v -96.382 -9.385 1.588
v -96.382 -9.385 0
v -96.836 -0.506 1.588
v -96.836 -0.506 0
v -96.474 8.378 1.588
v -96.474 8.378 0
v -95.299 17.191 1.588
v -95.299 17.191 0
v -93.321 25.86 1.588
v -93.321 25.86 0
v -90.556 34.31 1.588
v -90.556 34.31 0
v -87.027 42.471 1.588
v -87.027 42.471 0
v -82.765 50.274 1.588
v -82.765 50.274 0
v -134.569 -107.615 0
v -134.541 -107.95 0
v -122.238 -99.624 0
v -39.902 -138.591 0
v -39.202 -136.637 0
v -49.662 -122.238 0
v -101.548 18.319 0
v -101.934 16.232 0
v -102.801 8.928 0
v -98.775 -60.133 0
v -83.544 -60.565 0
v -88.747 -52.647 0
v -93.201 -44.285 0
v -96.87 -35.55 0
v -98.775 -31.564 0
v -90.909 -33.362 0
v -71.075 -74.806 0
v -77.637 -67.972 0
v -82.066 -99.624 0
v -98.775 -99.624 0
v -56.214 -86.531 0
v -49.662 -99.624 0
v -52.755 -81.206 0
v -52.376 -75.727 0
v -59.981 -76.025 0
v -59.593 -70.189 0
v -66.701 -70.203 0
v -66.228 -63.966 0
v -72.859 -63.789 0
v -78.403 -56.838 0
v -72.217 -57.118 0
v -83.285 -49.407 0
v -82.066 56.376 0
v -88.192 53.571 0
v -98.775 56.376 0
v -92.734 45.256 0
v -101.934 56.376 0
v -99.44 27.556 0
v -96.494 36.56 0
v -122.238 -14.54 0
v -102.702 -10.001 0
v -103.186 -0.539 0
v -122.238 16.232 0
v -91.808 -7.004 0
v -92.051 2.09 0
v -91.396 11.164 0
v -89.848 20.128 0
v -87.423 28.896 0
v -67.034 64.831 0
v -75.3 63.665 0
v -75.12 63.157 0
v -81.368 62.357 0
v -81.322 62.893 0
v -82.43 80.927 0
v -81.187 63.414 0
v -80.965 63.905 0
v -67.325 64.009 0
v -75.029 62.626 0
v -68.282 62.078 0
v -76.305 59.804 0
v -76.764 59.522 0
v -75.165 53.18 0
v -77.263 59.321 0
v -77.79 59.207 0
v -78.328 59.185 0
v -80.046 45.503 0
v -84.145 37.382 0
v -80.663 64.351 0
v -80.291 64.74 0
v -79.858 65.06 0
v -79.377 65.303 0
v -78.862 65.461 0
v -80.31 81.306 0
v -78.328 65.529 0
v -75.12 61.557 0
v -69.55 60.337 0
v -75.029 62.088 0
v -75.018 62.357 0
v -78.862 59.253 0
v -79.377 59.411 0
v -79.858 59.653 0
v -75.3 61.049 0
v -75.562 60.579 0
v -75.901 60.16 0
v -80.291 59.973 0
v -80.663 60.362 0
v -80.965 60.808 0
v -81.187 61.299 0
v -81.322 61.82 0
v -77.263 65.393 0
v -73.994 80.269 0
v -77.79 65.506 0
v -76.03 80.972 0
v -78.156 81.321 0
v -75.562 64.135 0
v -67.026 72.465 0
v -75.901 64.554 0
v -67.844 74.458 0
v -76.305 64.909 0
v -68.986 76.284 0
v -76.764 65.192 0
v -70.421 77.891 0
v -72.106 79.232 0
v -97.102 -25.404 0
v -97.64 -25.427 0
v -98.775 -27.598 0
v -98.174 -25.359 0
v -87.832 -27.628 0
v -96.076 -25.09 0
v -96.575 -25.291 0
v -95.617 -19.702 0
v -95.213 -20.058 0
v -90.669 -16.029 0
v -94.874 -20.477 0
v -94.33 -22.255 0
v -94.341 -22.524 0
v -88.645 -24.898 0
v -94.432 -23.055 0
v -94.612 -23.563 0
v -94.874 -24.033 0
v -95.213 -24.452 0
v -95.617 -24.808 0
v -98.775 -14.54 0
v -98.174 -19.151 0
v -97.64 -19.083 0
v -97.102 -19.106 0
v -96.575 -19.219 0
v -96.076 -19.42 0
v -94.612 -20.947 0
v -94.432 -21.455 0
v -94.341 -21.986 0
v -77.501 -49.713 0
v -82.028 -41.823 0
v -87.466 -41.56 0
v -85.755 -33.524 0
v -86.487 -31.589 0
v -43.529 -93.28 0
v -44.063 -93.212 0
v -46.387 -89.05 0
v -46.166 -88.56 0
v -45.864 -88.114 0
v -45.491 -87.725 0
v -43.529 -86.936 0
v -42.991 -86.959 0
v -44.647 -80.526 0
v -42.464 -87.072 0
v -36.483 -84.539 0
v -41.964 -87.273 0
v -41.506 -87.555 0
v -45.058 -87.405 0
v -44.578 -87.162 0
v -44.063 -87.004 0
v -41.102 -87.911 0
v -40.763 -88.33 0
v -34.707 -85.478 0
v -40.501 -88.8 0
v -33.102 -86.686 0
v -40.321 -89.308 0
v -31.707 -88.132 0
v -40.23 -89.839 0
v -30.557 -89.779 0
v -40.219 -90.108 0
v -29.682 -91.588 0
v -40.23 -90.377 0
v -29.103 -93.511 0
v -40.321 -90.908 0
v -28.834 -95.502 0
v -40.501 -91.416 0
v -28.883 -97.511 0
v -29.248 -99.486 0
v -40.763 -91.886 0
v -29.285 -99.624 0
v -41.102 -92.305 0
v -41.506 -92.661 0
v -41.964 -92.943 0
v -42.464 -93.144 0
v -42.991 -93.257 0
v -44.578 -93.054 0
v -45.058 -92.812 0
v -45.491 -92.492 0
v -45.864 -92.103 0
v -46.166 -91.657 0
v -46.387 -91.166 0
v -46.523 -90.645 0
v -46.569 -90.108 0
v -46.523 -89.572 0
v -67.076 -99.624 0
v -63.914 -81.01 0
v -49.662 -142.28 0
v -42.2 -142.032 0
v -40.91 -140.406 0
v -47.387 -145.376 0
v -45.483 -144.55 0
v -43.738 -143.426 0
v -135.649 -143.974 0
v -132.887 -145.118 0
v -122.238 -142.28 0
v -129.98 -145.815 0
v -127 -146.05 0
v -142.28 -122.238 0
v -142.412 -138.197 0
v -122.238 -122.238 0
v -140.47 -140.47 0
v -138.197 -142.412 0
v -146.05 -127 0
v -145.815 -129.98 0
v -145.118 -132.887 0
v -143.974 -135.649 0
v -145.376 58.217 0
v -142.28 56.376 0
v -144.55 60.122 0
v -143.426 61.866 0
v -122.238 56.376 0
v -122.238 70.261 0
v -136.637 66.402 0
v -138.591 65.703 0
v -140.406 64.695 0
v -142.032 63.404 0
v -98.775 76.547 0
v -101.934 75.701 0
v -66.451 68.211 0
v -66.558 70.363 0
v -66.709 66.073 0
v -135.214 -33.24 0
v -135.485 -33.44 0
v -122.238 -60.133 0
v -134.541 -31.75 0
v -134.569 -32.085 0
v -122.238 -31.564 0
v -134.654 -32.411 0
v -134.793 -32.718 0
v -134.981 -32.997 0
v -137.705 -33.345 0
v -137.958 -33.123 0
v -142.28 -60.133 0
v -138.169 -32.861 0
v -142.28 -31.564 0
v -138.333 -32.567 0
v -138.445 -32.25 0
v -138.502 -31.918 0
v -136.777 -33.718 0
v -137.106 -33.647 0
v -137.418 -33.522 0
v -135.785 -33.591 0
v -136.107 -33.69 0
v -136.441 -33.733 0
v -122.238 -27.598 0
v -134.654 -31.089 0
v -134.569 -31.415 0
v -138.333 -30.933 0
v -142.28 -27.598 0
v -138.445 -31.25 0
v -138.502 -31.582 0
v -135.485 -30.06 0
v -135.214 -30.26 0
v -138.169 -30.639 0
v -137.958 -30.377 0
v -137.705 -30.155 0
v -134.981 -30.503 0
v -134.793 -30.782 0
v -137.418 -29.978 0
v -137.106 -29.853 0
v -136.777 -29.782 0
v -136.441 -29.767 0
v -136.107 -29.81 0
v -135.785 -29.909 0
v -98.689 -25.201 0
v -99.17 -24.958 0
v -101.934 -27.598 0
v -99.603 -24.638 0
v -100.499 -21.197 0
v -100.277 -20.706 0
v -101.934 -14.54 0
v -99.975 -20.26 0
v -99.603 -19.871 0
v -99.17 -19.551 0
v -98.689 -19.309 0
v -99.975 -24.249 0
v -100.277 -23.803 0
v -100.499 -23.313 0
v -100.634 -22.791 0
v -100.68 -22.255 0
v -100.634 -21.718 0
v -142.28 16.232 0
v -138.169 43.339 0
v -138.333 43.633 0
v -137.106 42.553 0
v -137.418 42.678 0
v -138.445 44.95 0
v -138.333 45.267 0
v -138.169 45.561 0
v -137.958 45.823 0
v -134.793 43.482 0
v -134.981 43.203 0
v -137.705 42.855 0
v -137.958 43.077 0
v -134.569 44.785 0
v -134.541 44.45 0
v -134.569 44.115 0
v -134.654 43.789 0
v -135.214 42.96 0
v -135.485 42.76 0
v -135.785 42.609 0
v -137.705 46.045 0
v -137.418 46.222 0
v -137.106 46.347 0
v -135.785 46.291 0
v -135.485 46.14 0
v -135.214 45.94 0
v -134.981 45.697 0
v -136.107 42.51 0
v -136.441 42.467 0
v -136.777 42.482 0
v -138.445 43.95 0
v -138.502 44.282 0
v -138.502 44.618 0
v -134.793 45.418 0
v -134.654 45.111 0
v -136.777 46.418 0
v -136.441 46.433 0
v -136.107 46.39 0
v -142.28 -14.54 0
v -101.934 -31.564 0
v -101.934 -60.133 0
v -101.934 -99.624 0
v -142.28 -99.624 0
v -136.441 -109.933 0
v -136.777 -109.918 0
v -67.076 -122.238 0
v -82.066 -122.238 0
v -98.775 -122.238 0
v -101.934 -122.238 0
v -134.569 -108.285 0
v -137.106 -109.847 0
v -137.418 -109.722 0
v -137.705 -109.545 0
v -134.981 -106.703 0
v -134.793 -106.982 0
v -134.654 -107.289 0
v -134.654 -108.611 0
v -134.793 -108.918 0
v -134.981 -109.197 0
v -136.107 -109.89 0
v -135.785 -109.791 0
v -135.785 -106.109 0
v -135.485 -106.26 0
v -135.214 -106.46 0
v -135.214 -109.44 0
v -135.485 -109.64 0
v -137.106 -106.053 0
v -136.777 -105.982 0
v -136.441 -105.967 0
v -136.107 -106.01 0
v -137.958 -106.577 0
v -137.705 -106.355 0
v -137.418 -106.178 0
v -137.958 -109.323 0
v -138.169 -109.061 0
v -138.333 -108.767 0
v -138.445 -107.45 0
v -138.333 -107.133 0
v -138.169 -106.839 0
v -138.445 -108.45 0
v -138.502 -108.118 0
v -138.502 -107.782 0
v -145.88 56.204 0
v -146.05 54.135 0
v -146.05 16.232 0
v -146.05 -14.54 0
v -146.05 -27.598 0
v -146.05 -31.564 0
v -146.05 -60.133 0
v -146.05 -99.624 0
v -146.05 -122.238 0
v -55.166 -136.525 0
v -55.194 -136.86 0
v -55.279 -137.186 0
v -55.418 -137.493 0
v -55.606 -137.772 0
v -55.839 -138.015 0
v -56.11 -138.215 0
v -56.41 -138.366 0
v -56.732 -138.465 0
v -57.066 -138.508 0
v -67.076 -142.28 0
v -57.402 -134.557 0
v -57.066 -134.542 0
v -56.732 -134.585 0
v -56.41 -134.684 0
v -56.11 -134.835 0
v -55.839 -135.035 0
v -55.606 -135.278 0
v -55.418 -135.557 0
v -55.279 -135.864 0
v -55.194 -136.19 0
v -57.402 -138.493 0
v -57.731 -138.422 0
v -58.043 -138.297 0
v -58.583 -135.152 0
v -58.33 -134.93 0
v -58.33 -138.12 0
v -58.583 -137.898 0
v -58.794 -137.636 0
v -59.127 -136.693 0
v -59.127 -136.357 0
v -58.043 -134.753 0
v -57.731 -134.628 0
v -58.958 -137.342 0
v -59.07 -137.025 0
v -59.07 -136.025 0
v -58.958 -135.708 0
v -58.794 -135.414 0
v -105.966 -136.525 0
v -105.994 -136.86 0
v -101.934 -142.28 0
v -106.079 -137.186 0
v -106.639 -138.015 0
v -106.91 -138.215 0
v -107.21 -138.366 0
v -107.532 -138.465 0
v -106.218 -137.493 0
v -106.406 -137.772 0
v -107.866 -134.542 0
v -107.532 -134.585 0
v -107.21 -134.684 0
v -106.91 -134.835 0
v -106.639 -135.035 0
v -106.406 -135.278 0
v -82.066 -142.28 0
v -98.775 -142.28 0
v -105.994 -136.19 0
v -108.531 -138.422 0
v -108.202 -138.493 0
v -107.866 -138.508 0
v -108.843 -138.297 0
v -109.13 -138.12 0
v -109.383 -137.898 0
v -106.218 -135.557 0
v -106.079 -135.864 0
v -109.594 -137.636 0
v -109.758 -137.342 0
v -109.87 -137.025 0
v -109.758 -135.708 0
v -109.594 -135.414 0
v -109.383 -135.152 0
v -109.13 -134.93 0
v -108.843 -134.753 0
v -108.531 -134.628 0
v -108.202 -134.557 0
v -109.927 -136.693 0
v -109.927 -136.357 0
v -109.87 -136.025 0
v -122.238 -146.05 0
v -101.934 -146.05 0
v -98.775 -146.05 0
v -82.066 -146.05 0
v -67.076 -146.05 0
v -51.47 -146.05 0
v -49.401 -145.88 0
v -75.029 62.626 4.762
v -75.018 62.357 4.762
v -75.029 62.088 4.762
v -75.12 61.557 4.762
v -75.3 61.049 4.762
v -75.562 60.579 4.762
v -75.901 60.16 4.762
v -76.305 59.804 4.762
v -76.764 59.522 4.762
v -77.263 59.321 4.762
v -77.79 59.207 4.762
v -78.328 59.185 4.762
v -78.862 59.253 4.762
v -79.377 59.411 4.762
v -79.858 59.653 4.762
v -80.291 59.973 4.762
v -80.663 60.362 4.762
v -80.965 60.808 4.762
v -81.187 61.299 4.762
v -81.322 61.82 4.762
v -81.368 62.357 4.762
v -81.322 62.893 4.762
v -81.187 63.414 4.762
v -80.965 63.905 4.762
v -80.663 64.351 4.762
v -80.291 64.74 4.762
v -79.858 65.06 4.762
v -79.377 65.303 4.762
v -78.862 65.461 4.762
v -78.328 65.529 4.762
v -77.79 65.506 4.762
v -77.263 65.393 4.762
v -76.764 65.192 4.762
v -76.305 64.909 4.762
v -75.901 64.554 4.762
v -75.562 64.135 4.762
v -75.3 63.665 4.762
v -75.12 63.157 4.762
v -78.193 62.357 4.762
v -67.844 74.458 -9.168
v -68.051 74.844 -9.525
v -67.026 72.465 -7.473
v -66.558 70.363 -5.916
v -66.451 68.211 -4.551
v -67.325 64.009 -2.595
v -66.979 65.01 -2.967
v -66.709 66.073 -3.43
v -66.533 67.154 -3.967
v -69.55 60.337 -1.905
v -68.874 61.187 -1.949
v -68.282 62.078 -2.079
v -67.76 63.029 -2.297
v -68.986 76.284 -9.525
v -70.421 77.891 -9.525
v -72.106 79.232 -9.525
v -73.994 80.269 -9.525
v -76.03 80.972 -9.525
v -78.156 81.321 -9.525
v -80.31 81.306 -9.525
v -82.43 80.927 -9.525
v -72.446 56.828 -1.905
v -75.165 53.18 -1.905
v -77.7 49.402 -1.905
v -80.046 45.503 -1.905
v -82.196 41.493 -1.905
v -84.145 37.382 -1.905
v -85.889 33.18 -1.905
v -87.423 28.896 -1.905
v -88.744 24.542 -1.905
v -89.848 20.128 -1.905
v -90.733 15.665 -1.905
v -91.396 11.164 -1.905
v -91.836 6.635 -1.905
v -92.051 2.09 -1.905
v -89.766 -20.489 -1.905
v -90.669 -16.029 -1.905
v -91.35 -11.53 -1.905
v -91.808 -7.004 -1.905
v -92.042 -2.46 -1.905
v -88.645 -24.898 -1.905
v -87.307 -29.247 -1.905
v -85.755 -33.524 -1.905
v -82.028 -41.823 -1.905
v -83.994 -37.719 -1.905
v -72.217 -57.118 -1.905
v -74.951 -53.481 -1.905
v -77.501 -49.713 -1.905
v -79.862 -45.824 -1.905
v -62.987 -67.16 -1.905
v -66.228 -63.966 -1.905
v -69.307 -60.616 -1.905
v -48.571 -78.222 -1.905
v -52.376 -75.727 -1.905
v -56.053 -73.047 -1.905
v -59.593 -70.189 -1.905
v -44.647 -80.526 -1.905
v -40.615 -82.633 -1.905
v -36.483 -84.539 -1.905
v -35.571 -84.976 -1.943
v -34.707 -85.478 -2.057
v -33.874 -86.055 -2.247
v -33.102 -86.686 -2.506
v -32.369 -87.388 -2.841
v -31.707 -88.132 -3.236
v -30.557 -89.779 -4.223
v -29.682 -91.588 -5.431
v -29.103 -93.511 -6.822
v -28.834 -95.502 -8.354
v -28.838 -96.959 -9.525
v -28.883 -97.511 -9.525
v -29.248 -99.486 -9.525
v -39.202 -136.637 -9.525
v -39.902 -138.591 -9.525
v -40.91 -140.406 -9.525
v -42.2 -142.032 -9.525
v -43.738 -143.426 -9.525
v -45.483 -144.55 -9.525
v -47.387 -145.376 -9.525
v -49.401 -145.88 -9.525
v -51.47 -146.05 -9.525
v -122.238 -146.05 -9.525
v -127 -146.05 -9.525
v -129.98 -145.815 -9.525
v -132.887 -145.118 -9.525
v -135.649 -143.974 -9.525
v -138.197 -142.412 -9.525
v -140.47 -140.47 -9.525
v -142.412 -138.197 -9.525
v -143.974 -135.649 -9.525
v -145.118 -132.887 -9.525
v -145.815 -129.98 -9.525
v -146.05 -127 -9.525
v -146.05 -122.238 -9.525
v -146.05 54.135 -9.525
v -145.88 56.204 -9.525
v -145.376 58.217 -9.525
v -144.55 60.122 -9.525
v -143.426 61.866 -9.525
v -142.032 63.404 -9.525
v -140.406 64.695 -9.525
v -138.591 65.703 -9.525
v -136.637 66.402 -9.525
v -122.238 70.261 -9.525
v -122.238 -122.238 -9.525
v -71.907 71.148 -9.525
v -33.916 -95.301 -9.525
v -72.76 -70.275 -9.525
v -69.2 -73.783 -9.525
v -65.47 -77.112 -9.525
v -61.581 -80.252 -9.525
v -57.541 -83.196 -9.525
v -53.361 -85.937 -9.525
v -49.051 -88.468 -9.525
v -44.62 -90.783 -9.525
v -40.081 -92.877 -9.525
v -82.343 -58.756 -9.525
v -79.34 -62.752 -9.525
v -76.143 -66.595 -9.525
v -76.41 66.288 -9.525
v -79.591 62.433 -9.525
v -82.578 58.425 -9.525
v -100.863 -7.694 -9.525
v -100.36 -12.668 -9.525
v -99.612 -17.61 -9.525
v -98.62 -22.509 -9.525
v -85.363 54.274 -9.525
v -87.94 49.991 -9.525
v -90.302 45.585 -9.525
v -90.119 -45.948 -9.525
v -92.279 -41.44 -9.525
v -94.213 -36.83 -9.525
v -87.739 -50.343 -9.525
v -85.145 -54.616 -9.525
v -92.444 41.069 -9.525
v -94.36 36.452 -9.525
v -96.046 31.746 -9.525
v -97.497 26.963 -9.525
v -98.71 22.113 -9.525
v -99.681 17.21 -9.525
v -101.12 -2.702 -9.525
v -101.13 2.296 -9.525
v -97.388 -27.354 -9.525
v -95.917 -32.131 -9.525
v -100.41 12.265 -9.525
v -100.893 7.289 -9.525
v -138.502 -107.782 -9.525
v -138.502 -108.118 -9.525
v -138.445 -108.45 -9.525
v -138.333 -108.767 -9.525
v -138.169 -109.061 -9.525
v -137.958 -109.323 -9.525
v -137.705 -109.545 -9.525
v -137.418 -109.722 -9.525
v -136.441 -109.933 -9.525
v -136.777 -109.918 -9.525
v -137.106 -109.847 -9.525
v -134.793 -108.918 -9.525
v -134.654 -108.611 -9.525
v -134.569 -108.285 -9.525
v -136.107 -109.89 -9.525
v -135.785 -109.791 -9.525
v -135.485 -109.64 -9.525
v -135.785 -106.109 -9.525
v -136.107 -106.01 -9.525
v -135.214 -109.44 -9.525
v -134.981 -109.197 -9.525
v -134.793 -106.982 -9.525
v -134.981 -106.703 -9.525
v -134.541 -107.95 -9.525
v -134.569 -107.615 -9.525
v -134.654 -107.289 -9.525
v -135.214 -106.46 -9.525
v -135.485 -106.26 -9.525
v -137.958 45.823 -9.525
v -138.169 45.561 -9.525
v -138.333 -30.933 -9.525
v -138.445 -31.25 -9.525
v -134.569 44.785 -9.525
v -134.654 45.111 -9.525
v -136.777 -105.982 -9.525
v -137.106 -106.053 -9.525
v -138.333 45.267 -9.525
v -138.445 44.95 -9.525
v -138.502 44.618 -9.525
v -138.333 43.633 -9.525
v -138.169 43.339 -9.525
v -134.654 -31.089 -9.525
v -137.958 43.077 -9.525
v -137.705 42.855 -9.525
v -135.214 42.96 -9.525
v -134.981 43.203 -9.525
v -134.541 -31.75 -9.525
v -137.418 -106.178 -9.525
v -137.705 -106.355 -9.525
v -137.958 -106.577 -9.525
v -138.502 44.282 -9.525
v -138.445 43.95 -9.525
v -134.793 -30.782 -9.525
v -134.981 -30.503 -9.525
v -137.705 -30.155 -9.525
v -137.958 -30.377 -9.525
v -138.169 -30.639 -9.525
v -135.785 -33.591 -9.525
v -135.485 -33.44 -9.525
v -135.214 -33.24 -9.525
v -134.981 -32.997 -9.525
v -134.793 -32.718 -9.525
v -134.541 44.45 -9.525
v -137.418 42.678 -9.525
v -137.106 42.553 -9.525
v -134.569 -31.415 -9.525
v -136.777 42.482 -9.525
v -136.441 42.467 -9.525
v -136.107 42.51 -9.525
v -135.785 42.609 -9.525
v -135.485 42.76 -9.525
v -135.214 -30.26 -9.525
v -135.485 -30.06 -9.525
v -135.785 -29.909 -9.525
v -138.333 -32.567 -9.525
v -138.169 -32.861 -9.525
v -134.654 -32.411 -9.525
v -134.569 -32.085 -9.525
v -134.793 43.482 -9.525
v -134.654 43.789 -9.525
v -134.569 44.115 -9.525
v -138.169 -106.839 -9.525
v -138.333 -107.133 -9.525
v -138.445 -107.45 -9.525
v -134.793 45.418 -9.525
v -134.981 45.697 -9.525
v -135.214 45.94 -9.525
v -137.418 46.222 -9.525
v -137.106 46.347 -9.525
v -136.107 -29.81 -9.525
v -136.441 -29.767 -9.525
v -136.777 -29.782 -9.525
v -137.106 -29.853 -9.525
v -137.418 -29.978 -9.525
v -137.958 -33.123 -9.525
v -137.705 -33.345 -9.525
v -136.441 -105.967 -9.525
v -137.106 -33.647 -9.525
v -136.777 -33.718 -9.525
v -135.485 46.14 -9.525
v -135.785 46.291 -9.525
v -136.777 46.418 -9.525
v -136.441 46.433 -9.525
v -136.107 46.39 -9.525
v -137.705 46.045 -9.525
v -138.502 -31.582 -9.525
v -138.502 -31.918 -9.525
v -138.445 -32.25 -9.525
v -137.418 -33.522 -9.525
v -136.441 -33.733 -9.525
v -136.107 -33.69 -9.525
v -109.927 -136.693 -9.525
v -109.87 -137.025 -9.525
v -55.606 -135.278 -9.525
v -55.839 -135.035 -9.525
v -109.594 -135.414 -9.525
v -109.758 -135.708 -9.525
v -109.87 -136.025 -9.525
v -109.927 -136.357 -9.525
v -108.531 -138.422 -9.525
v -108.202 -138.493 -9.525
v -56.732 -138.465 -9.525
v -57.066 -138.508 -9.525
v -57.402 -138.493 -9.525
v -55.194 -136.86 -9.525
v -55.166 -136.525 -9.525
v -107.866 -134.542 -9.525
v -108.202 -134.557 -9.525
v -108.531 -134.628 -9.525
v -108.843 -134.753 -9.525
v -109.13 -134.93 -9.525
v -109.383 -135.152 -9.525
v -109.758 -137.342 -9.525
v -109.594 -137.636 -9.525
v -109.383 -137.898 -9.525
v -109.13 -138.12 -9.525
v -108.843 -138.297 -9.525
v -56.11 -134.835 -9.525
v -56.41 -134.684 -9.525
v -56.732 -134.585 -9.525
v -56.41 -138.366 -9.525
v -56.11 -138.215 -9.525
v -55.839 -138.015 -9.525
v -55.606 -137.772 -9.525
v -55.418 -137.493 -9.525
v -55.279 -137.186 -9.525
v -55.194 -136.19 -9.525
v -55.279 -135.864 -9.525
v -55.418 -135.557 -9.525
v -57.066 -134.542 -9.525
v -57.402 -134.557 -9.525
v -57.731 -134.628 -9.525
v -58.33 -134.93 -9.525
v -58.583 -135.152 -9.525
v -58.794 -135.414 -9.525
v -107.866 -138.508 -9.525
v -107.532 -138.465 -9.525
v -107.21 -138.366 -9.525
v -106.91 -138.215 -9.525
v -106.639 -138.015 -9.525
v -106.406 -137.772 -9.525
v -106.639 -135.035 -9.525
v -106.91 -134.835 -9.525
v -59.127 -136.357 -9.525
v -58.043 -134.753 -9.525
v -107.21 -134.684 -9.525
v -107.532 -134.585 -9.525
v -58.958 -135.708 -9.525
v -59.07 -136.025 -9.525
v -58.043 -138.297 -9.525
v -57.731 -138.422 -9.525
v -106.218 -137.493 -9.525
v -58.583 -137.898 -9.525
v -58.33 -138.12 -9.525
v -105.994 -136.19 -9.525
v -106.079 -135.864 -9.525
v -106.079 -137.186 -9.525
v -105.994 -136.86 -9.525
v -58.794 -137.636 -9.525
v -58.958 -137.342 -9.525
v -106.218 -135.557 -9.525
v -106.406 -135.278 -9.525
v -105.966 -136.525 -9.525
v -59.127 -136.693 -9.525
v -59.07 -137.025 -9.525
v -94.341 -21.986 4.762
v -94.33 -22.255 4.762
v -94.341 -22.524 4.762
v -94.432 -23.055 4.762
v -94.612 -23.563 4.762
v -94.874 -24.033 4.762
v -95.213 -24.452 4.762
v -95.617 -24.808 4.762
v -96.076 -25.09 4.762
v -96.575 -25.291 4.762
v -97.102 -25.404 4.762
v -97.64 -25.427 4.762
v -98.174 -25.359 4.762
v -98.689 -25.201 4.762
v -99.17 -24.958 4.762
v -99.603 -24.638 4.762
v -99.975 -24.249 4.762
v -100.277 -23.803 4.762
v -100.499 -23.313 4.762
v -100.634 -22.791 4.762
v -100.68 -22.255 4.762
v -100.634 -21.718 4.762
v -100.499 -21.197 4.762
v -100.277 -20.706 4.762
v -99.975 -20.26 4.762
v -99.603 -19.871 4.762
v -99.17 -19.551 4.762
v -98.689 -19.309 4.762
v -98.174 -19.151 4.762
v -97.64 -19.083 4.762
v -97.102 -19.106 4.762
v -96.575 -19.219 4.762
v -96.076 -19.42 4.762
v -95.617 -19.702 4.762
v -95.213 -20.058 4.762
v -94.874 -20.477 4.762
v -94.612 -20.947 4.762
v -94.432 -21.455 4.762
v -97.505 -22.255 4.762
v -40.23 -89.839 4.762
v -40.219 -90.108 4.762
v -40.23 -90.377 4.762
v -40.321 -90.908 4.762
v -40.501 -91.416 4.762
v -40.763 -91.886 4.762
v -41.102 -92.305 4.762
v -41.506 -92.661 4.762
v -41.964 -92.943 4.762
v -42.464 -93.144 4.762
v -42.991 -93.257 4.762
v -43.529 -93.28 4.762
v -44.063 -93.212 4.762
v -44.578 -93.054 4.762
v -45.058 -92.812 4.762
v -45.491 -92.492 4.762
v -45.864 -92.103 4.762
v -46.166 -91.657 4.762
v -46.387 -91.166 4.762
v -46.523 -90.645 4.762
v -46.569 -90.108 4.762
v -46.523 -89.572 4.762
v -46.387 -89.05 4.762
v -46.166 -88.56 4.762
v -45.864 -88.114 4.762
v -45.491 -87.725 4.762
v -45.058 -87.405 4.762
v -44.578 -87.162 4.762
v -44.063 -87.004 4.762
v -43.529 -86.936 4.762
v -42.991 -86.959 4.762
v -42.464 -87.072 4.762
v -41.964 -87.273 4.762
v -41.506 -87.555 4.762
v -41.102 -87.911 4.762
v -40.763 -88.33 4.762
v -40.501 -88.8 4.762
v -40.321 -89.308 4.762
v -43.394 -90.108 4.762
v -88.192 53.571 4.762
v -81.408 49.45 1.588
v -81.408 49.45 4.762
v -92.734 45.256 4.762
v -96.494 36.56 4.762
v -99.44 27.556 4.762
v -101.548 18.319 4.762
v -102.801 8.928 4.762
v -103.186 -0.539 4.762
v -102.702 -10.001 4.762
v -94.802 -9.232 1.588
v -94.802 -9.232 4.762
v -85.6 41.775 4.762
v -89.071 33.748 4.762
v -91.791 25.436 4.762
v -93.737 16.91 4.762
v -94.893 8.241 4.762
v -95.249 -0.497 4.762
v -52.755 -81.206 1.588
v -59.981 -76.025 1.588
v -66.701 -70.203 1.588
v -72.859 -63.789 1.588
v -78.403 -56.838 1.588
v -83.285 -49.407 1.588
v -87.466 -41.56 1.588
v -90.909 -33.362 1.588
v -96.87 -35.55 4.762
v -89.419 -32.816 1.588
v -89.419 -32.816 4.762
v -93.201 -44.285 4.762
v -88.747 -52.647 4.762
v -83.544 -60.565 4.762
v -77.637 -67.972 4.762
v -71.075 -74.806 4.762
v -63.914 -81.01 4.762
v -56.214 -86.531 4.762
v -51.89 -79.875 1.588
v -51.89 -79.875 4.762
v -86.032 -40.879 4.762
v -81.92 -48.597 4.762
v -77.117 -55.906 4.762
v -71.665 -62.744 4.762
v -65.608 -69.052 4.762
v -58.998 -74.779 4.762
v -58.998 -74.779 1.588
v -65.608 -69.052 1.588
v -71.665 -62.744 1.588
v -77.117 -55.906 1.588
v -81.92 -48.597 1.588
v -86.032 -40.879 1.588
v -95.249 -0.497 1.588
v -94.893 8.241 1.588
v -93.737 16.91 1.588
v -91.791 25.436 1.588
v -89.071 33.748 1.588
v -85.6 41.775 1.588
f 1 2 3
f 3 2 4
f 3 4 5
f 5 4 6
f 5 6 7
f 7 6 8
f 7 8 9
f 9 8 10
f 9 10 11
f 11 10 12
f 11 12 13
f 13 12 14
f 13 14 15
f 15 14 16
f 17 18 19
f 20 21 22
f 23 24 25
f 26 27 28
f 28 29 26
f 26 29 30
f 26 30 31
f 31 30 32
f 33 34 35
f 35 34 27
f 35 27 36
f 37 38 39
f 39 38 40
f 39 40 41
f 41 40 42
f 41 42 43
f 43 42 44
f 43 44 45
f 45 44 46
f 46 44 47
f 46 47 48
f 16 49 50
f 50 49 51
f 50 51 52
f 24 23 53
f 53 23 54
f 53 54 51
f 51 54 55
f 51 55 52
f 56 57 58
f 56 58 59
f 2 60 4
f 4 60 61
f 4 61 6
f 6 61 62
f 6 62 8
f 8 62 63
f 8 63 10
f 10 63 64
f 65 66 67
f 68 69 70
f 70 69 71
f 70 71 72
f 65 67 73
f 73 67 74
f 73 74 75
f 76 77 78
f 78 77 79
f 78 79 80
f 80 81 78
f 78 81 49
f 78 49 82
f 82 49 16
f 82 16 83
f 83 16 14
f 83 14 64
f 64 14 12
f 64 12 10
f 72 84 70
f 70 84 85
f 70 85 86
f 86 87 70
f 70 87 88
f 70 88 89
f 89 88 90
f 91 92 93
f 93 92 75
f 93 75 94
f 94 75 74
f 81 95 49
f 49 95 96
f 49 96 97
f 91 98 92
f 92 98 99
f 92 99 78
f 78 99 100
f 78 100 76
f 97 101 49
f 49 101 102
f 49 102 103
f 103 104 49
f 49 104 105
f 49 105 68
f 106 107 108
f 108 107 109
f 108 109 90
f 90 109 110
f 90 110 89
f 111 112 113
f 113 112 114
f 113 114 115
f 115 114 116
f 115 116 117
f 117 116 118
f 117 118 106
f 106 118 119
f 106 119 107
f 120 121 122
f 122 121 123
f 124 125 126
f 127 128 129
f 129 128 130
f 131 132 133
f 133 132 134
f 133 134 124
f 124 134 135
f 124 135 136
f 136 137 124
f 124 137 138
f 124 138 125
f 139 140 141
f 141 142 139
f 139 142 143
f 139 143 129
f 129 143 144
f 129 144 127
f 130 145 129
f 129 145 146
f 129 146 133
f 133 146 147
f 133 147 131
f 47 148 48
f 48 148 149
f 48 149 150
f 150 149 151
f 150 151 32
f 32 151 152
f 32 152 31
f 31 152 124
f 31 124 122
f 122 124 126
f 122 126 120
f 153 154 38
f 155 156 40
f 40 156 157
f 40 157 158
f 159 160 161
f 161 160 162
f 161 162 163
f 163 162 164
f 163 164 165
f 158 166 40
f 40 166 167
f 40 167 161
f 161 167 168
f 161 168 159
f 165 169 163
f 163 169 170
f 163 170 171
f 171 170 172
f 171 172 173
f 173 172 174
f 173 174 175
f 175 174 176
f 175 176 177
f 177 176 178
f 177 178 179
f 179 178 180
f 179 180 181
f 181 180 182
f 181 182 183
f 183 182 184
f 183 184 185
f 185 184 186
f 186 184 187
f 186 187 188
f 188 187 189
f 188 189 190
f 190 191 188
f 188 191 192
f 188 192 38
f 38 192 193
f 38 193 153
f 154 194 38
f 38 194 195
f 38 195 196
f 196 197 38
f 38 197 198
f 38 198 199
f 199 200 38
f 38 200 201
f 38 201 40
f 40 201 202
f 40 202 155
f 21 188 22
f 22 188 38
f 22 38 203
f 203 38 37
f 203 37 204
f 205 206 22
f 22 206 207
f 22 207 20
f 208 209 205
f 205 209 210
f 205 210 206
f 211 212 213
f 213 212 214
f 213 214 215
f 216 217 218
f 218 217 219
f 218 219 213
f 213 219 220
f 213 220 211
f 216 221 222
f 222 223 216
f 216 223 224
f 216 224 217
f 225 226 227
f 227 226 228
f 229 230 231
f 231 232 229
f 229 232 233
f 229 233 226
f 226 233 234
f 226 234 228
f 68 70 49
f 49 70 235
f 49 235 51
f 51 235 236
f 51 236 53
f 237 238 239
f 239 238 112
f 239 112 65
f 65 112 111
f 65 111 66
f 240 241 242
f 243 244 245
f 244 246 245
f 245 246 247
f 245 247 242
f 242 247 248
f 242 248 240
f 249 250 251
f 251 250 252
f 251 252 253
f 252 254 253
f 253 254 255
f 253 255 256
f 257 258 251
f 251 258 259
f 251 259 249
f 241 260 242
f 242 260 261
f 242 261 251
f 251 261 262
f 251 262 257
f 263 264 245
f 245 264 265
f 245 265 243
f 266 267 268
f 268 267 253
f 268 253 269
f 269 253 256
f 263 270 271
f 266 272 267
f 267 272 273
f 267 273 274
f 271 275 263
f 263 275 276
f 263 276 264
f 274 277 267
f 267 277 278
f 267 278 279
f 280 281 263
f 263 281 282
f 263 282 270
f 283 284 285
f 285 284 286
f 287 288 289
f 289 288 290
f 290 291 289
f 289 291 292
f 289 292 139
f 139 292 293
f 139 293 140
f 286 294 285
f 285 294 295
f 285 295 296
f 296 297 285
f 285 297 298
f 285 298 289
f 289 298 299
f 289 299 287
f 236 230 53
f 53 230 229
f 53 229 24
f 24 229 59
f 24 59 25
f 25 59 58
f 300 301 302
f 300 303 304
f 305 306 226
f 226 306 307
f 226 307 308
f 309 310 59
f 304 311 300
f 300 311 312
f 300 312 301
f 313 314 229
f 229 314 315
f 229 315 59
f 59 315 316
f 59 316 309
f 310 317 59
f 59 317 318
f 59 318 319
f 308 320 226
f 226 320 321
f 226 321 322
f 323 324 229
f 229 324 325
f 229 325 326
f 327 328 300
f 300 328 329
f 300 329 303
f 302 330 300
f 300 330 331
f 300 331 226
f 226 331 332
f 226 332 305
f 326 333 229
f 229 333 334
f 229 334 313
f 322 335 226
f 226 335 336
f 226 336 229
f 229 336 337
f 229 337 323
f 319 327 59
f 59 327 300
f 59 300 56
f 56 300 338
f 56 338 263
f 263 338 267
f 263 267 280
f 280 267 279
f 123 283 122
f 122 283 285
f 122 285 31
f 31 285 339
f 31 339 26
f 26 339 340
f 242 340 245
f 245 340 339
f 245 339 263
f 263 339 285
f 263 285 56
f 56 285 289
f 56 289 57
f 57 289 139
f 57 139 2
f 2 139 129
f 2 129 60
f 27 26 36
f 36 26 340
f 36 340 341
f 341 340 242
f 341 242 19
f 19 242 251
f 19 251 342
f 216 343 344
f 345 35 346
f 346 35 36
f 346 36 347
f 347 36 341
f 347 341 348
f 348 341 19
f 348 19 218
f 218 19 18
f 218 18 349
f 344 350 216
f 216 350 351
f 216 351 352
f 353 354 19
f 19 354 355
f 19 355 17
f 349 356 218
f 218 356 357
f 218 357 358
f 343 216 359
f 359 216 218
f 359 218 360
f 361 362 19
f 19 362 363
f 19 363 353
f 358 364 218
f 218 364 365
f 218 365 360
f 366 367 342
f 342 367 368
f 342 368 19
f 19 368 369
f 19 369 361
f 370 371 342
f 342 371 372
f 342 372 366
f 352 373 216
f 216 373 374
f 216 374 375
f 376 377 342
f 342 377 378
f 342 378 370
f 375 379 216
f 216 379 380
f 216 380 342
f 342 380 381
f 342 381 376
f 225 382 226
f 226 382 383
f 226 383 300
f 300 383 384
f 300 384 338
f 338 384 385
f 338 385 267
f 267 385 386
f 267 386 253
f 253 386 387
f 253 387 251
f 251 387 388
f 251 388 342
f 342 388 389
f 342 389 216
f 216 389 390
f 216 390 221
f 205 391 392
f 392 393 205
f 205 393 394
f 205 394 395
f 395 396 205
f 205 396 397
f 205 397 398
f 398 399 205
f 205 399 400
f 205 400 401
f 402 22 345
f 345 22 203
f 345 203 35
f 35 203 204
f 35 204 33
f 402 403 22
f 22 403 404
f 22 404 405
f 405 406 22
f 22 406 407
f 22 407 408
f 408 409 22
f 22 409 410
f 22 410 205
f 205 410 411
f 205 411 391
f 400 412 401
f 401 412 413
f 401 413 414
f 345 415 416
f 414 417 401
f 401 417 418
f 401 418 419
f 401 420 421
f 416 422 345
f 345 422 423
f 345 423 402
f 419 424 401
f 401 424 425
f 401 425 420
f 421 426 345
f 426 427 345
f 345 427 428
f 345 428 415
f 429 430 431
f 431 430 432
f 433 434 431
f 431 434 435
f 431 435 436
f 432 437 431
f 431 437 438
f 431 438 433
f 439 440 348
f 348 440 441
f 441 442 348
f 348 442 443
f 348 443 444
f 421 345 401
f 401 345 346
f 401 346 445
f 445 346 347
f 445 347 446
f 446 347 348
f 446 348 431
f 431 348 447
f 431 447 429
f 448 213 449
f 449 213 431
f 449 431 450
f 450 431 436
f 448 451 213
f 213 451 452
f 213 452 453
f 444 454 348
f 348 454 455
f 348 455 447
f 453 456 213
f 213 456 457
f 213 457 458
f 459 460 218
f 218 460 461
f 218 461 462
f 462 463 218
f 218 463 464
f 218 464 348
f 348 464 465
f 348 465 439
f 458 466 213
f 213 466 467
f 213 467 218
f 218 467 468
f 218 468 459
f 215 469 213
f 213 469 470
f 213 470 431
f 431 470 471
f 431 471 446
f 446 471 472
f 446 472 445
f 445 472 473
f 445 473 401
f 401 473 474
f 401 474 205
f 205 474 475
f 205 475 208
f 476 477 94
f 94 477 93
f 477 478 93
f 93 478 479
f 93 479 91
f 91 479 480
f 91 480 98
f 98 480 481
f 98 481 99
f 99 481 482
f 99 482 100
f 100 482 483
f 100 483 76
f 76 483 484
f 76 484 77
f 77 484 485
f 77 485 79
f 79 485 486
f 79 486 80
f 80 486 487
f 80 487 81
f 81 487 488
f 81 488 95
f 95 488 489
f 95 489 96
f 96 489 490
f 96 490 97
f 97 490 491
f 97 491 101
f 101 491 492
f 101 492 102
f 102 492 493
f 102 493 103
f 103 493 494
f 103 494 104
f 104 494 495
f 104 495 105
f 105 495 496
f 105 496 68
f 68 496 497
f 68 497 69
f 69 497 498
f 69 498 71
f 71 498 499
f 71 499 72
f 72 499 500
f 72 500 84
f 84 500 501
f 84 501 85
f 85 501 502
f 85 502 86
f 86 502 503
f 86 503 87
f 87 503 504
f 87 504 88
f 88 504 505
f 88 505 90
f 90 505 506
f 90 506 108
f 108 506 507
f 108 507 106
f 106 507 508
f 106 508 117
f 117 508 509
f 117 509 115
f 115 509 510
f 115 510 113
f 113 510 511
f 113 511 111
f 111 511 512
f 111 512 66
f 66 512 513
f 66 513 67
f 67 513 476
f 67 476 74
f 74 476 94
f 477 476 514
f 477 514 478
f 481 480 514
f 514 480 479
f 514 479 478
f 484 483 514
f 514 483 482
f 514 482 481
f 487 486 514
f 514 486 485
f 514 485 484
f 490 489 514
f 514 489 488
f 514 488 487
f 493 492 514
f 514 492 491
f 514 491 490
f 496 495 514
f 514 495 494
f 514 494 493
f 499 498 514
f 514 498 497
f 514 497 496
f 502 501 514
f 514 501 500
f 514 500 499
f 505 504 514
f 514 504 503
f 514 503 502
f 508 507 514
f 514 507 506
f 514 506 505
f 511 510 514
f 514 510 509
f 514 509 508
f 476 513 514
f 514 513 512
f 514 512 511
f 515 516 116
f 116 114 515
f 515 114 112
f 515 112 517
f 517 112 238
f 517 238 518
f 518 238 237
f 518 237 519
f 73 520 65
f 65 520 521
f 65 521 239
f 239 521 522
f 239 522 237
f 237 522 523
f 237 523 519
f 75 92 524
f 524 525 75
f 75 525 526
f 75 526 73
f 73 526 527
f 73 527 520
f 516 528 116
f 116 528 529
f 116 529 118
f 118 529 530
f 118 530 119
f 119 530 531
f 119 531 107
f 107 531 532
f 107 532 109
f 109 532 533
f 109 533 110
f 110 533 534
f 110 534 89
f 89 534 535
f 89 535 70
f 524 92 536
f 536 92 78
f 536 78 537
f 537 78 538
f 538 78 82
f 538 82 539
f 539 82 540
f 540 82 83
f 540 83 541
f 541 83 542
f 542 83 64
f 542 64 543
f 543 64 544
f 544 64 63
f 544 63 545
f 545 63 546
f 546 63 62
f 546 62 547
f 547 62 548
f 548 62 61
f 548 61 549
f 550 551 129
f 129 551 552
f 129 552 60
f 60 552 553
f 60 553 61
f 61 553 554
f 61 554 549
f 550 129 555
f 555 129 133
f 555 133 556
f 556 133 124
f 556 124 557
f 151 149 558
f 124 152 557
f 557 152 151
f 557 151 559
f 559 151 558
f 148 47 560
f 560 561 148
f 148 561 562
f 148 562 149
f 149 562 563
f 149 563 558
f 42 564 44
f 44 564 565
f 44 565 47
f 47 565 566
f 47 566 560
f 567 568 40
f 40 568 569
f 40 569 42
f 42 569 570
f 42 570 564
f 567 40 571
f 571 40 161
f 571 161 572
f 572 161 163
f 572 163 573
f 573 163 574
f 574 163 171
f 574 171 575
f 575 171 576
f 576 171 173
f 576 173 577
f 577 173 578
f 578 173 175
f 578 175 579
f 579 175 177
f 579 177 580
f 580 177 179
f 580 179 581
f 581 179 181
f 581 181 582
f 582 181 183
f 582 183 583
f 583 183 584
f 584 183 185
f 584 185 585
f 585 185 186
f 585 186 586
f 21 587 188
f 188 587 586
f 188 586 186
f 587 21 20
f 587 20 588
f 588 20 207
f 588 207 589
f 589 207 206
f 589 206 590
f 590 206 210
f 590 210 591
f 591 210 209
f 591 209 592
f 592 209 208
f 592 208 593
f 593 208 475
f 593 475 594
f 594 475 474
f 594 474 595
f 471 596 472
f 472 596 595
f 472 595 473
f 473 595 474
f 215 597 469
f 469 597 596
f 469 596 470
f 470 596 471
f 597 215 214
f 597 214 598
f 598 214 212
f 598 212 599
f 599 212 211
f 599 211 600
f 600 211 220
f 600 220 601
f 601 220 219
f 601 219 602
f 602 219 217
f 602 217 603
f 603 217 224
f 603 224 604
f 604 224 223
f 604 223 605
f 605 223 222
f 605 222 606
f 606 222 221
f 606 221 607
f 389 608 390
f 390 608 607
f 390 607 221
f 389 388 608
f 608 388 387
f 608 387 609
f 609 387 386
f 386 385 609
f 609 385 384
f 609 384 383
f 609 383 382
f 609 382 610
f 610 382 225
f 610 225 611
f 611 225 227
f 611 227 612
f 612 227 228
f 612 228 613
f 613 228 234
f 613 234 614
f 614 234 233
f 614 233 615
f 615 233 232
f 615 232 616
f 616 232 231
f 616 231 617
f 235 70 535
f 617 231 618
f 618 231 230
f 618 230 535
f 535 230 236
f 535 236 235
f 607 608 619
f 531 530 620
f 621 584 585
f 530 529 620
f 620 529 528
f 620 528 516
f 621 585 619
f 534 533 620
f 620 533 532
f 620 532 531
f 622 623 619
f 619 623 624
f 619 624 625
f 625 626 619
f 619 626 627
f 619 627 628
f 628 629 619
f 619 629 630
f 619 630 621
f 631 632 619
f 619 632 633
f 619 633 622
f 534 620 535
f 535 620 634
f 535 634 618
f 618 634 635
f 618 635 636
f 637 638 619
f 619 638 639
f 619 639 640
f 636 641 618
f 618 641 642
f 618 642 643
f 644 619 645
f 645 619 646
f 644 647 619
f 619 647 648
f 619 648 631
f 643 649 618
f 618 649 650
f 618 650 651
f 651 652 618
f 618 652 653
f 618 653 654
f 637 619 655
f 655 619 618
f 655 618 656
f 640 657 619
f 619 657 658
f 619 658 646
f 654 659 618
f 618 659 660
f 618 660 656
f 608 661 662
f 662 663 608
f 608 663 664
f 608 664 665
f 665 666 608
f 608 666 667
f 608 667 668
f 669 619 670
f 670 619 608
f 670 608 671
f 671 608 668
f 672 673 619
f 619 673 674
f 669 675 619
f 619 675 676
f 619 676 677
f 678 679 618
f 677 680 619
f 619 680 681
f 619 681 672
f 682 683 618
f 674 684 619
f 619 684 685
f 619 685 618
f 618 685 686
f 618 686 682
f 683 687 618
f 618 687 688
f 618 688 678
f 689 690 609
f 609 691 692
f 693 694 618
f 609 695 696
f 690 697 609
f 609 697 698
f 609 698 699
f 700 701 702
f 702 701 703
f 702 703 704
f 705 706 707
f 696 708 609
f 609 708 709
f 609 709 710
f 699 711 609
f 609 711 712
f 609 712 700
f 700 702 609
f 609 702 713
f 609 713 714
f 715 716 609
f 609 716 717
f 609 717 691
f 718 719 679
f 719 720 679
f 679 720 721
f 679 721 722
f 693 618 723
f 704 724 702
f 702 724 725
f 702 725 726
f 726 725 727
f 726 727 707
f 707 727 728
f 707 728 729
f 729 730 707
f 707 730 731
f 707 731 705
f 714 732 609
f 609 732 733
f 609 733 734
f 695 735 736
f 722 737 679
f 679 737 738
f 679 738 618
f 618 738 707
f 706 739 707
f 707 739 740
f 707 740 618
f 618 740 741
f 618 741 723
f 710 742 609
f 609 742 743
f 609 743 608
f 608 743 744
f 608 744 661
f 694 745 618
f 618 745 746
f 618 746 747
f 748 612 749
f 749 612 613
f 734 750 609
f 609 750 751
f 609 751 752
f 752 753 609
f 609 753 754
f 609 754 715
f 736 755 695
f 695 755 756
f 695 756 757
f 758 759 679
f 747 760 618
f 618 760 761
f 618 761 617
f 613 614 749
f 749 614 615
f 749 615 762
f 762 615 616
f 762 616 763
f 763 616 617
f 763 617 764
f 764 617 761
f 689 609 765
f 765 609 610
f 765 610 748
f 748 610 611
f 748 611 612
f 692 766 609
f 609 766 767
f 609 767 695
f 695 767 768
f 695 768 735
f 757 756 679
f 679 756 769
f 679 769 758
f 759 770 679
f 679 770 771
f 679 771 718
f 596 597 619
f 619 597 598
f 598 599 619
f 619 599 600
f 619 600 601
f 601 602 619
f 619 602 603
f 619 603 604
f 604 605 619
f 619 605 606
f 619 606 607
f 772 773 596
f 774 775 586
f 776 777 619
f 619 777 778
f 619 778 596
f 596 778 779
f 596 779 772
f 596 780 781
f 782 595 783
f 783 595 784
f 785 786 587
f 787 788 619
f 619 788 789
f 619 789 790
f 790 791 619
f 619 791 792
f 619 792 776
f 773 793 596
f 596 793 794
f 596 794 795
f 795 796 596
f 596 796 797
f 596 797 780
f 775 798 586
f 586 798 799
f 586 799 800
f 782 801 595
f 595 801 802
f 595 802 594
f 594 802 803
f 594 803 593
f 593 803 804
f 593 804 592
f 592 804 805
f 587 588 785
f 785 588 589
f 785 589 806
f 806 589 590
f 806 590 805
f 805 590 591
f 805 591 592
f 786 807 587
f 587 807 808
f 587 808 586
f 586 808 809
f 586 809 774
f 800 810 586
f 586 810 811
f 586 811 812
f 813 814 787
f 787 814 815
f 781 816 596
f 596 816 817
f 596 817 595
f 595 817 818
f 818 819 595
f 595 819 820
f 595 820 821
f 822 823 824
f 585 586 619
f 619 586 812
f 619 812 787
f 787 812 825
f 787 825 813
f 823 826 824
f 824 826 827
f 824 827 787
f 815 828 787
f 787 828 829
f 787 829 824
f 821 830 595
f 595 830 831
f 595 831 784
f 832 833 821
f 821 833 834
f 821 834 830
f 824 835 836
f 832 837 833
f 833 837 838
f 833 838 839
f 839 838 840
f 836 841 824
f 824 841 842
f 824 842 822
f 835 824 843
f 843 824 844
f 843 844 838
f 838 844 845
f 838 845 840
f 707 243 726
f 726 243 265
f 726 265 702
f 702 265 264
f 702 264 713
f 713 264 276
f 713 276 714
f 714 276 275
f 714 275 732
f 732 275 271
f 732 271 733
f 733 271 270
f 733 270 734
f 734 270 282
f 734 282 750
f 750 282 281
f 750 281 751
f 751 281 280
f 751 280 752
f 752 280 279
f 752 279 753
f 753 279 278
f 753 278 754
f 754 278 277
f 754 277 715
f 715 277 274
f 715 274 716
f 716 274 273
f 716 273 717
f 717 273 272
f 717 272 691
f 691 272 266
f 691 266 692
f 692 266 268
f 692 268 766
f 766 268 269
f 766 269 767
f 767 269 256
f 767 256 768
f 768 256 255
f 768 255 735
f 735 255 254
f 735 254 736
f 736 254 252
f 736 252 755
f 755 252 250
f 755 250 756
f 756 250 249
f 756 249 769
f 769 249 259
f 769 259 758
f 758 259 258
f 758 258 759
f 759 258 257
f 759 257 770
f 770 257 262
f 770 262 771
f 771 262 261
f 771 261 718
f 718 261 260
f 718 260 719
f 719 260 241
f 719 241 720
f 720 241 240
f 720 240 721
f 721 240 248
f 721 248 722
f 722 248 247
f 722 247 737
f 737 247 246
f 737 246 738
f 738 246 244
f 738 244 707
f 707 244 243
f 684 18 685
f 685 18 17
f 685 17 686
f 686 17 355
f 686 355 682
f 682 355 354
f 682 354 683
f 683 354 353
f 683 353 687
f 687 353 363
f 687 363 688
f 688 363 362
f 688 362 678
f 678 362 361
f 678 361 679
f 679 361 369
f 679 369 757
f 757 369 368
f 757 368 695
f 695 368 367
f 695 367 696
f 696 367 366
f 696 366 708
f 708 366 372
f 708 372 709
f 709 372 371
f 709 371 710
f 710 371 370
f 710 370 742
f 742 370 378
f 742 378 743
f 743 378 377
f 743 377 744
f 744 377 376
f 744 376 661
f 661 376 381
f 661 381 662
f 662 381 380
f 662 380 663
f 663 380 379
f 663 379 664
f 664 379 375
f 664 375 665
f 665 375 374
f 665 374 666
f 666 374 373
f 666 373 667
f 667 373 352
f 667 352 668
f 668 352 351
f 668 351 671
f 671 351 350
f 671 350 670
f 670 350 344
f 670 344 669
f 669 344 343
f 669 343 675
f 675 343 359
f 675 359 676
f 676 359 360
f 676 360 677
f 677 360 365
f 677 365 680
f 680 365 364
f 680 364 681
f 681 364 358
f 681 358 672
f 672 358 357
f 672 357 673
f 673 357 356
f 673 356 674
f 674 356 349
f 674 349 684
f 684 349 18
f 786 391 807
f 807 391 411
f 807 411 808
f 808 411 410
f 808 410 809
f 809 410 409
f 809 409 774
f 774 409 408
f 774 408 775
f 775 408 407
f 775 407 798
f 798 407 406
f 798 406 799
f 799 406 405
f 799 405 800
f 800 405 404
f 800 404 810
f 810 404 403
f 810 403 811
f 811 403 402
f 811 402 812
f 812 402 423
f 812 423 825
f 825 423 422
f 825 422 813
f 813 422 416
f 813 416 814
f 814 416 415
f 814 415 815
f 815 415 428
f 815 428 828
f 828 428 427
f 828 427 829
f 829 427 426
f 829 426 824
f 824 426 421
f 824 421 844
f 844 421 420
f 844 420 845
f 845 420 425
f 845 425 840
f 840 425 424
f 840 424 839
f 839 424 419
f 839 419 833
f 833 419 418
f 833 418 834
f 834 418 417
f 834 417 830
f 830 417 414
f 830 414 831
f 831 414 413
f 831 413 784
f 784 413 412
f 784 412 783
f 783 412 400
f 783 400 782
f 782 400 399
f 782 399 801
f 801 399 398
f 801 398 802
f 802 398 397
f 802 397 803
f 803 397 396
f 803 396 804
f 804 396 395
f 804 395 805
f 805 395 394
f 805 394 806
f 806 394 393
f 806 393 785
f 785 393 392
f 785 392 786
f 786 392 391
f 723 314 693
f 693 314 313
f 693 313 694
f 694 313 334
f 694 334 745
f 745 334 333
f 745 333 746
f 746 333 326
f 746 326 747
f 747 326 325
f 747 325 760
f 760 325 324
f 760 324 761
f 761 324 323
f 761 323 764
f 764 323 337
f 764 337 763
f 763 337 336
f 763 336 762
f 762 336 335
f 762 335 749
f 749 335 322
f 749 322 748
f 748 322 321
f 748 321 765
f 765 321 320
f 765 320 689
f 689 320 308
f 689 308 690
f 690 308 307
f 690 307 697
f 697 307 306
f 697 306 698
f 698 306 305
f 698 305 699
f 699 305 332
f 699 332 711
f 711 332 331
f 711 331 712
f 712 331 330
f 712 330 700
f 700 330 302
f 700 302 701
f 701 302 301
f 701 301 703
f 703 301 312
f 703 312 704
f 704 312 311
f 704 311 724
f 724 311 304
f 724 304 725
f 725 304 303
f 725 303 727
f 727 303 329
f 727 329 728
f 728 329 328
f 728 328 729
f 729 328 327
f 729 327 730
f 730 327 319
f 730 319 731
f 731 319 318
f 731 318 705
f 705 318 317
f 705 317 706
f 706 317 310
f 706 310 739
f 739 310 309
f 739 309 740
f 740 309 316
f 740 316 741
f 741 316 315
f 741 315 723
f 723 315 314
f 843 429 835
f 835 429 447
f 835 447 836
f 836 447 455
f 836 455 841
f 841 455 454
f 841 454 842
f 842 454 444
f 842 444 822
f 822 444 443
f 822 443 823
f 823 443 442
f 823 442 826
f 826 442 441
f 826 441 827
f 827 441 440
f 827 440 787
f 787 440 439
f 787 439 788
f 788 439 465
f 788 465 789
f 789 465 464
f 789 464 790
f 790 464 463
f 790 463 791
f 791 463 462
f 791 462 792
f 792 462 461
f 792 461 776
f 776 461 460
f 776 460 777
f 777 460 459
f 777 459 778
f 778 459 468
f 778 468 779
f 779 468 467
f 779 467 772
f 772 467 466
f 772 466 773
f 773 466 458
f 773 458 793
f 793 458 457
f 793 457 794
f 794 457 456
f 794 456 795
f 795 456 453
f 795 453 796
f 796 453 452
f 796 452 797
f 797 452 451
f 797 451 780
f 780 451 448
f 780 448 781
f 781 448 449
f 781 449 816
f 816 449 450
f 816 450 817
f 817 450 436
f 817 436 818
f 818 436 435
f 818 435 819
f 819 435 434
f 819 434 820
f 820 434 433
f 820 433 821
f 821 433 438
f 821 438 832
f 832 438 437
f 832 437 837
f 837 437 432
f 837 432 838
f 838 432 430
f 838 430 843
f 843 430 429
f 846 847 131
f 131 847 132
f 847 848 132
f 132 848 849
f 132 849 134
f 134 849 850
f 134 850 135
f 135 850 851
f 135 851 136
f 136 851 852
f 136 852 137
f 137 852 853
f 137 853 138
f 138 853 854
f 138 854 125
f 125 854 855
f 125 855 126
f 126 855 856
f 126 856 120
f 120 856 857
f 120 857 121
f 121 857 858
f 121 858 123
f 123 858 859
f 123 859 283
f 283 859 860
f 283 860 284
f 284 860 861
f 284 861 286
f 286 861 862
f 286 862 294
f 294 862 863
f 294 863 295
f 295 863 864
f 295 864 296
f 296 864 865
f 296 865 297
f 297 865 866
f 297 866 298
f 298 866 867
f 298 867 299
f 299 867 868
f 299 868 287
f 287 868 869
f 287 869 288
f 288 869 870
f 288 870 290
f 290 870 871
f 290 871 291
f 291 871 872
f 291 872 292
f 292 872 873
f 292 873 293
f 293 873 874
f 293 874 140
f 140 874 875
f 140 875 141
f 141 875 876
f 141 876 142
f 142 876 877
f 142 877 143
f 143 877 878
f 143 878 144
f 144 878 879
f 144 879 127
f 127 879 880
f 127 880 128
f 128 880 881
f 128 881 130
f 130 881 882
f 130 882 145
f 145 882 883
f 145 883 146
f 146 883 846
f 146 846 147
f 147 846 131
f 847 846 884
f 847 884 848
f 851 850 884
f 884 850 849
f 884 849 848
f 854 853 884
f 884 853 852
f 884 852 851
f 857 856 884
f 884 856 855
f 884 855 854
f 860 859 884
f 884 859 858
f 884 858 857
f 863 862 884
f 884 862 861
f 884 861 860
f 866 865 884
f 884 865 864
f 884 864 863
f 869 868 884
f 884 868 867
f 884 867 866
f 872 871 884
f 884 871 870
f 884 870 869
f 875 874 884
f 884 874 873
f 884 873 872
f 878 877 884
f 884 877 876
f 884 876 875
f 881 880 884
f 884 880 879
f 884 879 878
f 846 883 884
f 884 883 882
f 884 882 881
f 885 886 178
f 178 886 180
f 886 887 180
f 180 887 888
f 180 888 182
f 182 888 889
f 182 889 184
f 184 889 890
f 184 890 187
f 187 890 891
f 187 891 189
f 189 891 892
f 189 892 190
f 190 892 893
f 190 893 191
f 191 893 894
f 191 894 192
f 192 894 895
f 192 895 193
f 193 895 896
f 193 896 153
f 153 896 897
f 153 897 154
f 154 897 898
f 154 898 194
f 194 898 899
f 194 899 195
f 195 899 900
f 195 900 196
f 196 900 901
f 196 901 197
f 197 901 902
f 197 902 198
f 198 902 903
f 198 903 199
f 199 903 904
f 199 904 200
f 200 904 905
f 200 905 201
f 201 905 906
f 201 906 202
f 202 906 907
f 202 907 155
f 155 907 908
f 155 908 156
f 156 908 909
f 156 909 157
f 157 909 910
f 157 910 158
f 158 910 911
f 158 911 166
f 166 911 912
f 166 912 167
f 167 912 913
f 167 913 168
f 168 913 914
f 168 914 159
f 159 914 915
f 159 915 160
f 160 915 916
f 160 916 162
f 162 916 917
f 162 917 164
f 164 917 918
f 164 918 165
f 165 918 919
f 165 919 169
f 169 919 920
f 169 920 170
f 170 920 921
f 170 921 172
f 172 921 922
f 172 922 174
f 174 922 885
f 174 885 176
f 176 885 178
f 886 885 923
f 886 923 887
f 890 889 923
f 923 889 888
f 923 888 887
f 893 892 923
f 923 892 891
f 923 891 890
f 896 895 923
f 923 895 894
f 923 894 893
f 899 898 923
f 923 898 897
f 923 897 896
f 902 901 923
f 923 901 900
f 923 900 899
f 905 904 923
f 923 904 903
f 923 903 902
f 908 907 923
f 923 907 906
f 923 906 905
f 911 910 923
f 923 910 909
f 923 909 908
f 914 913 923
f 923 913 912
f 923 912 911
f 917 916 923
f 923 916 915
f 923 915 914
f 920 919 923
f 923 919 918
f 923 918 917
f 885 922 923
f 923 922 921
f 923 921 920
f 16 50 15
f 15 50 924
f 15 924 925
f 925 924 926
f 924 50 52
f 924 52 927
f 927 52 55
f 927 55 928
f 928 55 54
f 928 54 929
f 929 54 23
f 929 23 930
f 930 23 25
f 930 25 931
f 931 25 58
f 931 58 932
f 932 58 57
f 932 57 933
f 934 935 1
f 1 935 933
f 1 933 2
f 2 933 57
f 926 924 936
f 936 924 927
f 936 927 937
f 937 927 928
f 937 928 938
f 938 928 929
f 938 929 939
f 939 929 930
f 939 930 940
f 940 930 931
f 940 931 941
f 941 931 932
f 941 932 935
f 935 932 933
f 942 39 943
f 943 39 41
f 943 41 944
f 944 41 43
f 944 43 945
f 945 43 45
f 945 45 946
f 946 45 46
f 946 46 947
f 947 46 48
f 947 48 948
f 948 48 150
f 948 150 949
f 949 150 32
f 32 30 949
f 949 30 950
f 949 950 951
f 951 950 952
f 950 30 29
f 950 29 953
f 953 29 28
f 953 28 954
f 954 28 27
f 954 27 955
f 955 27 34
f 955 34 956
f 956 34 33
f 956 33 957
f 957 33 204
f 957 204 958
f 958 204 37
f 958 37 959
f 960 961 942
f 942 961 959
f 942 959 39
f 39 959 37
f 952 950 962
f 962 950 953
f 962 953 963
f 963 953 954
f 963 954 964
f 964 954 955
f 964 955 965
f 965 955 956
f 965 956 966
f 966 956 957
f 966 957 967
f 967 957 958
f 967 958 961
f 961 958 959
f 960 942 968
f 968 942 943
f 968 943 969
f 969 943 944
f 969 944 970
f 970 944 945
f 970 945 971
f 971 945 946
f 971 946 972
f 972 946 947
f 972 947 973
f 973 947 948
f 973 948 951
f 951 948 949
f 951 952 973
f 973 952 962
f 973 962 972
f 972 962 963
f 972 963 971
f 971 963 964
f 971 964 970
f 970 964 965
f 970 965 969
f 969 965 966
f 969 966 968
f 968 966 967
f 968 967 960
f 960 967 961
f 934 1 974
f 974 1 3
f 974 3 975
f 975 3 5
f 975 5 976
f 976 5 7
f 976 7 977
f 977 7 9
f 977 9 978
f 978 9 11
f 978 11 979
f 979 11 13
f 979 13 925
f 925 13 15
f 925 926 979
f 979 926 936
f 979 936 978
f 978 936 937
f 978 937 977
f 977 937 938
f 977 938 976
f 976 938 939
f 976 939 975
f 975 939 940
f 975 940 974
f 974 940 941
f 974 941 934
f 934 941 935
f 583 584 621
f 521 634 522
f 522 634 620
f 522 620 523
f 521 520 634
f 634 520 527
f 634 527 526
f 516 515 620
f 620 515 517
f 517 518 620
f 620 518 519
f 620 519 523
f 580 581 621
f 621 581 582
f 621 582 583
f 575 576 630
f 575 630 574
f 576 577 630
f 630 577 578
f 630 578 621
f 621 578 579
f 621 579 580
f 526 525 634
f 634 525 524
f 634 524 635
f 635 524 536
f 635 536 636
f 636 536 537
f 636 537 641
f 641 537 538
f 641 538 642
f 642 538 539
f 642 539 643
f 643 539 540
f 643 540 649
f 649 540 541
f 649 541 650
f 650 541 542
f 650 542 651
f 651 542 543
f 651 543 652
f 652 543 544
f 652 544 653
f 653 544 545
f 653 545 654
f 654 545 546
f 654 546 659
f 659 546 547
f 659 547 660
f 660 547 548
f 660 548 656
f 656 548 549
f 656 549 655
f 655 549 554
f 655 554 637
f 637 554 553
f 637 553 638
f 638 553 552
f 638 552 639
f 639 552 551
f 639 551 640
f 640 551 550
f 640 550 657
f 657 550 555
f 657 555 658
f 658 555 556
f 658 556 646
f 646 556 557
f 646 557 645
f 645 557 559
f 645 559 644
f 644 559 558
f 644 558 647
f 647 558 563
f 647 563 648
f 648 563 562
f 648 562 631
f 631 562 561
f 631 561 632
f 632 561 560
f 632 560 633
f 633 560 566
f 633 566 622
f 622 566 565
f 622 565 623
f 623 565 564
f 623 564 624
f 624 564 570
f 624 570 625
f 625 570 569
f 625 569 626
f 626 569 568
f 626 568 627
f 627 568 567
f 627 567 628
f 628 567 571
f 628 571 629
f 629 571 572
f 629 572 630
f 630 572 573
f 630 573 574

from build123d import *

# Parameters (mm, degrees)
SKETCH1_R             = 3.175
BOSS_EXTRUDE1_DEPTH   = 4.7625
BOSS_EXTRUDE1_2_DEPTH = 4.7625
BOSS_EXTRUDE1_3_DEPTH = 4.7625
BOSS_EXTRUDE1_4_DEPTH = 4.7625
BOSS_EXTRUDE1_5_DEPTH = 4.7625
SKETCH2_R             = 1.984375
BOSS_EXTRUDE2_DEPTH   = 9.525
BOSS_EXTRUDE3_DEPTH   = 3.175
CHAMFER1_SIZE         = 9.081162376
CHAMFER1_SIZE_2       = 7.62


with BuildPart() as part:
    # Sketch1 → Boss-Extrude1 (new body)
    with BuildSketch(Plane.XY):
        with Locations(Location((-78.19292114, 62.356773808, 0), (0, 0, 180))):
            Circle(SKETCH1_R)
    extrude(amount=BOSS_EXTRUDE1_DEPTH)



with BuildPart() as body_2:
    # Sketch1 → Boss-Extrude1 2 (new body)
    with BuildSketch(Plane.XY):
        with Locations(Location((-97.504977817, -22.254874907, 0), (0, 0, 180))):
            Circle(SKETCH1_R)
    extrude(amount=BOSS_EXTRUDE1_2_DEPTH)


with BuildPart() as body_3:
    # Sketch1 → Boss-Extrude1 3 (new body)
    with BuildSketch(Plane.XY):
        with Locations(Location((-43.393797458, -90.108148901, 0), (0, 0, 180))):
            Circle(SKETCH1_R)
    extrude(amount=BOSS_EXTRUDE1_3_DEPTH)


with BuildPart() as body_4:
    # Sketch1 → Boss-Extrude1 4 (new body)
    with BuildSketch(Plane.XY):
        with BuildLine():
            Line((-88.191845565, 53.571060584), (-82.764655069, 50.274379933))
            ThreePointArc((-82.764655069, 50.274379933), (-94.409581696, 21.548370942), (-96.381613527, -9.385413164))
            Line((-96.381613527, -9.385413164), (-102.701719332, -10.000850093))
            ThreePointArc((-102.701719332, -10.000850093), (-100.600373938, 22.961378873), (-88.191845565, 53.571060584))
        make_face()
    extrude(amount=BOSS_EXTRUDE1_4_DEPTH)


with BuildPart() as body_5:
    # Sketch1 → Boss-Extrude1 5 (new body)
    with BuildSketch(Plane.XY):
        with BuildLine():
            Line((-90.909011383, -33.362449786), (-96.870258031, -35.550151411))
            ThreePointArc((-96.870258031, -35.550151411), (-80.675236097, -64.336353929), (-56.214495182, -86.53086552))
            Line((-56.214495182, -86.53086552), (-52.755141633, -81.20588918))
            ThreePointArc((-52.755141633, -81.20588918), (-75.710606183, -60.377193687), (-90.909011383, -33.362449786))
        make_face()
    extrude(amount=BOSS_EXTRUDE1_5_DEPTH)


with BuildPart() as part_1:
    add(part.part)

    add(body_2.part)  # Boss-Extrude2 merges body 2

    add(body_3.part)  # Boss-Extrude2 merges body 3
    # Sketch2 → Boss-Extrude2 (add)
    with BuildSketch(Plane.XY):
        with BuildLine():
            Line((-82.430084054, 80.927094637), (-136.637001873, 66.402394783))
            ThreePointArc((-136.637001873, 66.402394783), (-143.425587422, 61.866406938), (-146.05, 54.13513679))
            Line((-146.05, 54.13513679), (-146.05, -127))
            ThreePointArc((-146.05, -127), (-140.470384182, -140.470384182), (-127, -146.05))
            Line((-127, -146.05), (-51.469574148, -146.05))
            ThreePointArc((-51.469574148, -146.05), (-43.738303999, -143.425587422), (-39.202316154, -136.637001873))
            Line((-39.202316154, -136.637001873), (-29.247808511, -99.486273586))
            ThreePointArc((-29.247808511, -99.486273586), (-30.083781104, -90.666124862), (-36.482937232, -84.53875393))
            ThreePointArc((-36.482937232, -84.53875393), (-89.766487514, -20.488614994), (-69.549981311, 60.337432202))
            ThreePointArc((-69.549981311, 60.337432202), (-68.376222335, 75.395171012), (-82.430084054, 80.927094637))
        make_face()
        with Locations((-136.525, 44.45)):
            Circle(SKETCH2_R, mode=Mode.SUBTRACT)
        with Locations((-136.525, -31.75)):
            Circle(SKETCH2_R, mode=Mode.SUBTRACT)
        with Locations((-136.525, -107.95)):
            Circle(SKETCH2_R, mode=Mode.SUBTRACT)
        with Locations((-57.15, -136.525)):
            Circle(SKETCH2_R, mode=Mode.SUBTRACT)
        with Locations((-107.95, -136.525)):
            Circle(SKETCH2_R, mode=Mode.SUBTRACT)
    extrude(amount=-BOSS_EXTRUDE2_DEPTH)


    add(body_4.part)  # Boss-Extrude3 merges body 4

    add(body_5.part)  # Boss-Extrude3 merges body 5
    # Sketch3 → Boss-Extrude3 (add)
    with BuildSketch(Plane.XY.offset(4.7625)):
        with BuildLine():
            Line((-81.407857445, 49.45020977), (-88.191845565, 53.571060584))
            ThreePointArc((-88.191845565, 53.571060584), (-100.600373938, 22.961378873), (-102.701719332, -10.000850093))
            Line((-102.701719332, -10.000850093), (-94.801587075, -9.231553932))
            ThreePointArc((-94.801587075, -9.231553932), (-92.861883635, 21.195118959), (-81.407857445, 49.45020977))
        make_face()
        with BuildLine():
            Line((-96.870258031, -35.550151411), (-89.418699721, -32.815524379))
            ThreePointArc((-89.418699721, -32.815524379), (-74.469448705, -59.387403627), (-51.890303245, -79.874645095))
            Line((-51.890303245, -79.874645095), (-56.214495182, -86.53086552))
            ThreePointArc((-56.214495182, -86.53086552), (-80.675236097, -64.336353929), (-96.870258031, -35.550151411))
        make_face()
    extrude(amount=-BOSS_EXTRUDE3_DEPTH)

    # Chamfer1
    # the kernel refuses this chamfer: 9.081162376, 7.62 mm, written as the material it takes off along each edge
    with BuildSketch(Plane(origin=(0, 0, -9.525), x_dir=(-0.15246082974719, -0.9883095139645264, 0), z_dir=(0.9883095139645264, -0.15246082974719, 0))) as chamfer1_piece_1:
        Polygon((92.075 + CHAMFER1_SIZE, 0), (92.075, -CHAMFER1_SIZE_2), (92.075, 0), align=None)
    revolve(axis=Axis((0, 0, -9.525), (0, 0, -1)), revolution_arc=136.746589735, mode=Mode.SUBTRACT)


solid = part_1.part
